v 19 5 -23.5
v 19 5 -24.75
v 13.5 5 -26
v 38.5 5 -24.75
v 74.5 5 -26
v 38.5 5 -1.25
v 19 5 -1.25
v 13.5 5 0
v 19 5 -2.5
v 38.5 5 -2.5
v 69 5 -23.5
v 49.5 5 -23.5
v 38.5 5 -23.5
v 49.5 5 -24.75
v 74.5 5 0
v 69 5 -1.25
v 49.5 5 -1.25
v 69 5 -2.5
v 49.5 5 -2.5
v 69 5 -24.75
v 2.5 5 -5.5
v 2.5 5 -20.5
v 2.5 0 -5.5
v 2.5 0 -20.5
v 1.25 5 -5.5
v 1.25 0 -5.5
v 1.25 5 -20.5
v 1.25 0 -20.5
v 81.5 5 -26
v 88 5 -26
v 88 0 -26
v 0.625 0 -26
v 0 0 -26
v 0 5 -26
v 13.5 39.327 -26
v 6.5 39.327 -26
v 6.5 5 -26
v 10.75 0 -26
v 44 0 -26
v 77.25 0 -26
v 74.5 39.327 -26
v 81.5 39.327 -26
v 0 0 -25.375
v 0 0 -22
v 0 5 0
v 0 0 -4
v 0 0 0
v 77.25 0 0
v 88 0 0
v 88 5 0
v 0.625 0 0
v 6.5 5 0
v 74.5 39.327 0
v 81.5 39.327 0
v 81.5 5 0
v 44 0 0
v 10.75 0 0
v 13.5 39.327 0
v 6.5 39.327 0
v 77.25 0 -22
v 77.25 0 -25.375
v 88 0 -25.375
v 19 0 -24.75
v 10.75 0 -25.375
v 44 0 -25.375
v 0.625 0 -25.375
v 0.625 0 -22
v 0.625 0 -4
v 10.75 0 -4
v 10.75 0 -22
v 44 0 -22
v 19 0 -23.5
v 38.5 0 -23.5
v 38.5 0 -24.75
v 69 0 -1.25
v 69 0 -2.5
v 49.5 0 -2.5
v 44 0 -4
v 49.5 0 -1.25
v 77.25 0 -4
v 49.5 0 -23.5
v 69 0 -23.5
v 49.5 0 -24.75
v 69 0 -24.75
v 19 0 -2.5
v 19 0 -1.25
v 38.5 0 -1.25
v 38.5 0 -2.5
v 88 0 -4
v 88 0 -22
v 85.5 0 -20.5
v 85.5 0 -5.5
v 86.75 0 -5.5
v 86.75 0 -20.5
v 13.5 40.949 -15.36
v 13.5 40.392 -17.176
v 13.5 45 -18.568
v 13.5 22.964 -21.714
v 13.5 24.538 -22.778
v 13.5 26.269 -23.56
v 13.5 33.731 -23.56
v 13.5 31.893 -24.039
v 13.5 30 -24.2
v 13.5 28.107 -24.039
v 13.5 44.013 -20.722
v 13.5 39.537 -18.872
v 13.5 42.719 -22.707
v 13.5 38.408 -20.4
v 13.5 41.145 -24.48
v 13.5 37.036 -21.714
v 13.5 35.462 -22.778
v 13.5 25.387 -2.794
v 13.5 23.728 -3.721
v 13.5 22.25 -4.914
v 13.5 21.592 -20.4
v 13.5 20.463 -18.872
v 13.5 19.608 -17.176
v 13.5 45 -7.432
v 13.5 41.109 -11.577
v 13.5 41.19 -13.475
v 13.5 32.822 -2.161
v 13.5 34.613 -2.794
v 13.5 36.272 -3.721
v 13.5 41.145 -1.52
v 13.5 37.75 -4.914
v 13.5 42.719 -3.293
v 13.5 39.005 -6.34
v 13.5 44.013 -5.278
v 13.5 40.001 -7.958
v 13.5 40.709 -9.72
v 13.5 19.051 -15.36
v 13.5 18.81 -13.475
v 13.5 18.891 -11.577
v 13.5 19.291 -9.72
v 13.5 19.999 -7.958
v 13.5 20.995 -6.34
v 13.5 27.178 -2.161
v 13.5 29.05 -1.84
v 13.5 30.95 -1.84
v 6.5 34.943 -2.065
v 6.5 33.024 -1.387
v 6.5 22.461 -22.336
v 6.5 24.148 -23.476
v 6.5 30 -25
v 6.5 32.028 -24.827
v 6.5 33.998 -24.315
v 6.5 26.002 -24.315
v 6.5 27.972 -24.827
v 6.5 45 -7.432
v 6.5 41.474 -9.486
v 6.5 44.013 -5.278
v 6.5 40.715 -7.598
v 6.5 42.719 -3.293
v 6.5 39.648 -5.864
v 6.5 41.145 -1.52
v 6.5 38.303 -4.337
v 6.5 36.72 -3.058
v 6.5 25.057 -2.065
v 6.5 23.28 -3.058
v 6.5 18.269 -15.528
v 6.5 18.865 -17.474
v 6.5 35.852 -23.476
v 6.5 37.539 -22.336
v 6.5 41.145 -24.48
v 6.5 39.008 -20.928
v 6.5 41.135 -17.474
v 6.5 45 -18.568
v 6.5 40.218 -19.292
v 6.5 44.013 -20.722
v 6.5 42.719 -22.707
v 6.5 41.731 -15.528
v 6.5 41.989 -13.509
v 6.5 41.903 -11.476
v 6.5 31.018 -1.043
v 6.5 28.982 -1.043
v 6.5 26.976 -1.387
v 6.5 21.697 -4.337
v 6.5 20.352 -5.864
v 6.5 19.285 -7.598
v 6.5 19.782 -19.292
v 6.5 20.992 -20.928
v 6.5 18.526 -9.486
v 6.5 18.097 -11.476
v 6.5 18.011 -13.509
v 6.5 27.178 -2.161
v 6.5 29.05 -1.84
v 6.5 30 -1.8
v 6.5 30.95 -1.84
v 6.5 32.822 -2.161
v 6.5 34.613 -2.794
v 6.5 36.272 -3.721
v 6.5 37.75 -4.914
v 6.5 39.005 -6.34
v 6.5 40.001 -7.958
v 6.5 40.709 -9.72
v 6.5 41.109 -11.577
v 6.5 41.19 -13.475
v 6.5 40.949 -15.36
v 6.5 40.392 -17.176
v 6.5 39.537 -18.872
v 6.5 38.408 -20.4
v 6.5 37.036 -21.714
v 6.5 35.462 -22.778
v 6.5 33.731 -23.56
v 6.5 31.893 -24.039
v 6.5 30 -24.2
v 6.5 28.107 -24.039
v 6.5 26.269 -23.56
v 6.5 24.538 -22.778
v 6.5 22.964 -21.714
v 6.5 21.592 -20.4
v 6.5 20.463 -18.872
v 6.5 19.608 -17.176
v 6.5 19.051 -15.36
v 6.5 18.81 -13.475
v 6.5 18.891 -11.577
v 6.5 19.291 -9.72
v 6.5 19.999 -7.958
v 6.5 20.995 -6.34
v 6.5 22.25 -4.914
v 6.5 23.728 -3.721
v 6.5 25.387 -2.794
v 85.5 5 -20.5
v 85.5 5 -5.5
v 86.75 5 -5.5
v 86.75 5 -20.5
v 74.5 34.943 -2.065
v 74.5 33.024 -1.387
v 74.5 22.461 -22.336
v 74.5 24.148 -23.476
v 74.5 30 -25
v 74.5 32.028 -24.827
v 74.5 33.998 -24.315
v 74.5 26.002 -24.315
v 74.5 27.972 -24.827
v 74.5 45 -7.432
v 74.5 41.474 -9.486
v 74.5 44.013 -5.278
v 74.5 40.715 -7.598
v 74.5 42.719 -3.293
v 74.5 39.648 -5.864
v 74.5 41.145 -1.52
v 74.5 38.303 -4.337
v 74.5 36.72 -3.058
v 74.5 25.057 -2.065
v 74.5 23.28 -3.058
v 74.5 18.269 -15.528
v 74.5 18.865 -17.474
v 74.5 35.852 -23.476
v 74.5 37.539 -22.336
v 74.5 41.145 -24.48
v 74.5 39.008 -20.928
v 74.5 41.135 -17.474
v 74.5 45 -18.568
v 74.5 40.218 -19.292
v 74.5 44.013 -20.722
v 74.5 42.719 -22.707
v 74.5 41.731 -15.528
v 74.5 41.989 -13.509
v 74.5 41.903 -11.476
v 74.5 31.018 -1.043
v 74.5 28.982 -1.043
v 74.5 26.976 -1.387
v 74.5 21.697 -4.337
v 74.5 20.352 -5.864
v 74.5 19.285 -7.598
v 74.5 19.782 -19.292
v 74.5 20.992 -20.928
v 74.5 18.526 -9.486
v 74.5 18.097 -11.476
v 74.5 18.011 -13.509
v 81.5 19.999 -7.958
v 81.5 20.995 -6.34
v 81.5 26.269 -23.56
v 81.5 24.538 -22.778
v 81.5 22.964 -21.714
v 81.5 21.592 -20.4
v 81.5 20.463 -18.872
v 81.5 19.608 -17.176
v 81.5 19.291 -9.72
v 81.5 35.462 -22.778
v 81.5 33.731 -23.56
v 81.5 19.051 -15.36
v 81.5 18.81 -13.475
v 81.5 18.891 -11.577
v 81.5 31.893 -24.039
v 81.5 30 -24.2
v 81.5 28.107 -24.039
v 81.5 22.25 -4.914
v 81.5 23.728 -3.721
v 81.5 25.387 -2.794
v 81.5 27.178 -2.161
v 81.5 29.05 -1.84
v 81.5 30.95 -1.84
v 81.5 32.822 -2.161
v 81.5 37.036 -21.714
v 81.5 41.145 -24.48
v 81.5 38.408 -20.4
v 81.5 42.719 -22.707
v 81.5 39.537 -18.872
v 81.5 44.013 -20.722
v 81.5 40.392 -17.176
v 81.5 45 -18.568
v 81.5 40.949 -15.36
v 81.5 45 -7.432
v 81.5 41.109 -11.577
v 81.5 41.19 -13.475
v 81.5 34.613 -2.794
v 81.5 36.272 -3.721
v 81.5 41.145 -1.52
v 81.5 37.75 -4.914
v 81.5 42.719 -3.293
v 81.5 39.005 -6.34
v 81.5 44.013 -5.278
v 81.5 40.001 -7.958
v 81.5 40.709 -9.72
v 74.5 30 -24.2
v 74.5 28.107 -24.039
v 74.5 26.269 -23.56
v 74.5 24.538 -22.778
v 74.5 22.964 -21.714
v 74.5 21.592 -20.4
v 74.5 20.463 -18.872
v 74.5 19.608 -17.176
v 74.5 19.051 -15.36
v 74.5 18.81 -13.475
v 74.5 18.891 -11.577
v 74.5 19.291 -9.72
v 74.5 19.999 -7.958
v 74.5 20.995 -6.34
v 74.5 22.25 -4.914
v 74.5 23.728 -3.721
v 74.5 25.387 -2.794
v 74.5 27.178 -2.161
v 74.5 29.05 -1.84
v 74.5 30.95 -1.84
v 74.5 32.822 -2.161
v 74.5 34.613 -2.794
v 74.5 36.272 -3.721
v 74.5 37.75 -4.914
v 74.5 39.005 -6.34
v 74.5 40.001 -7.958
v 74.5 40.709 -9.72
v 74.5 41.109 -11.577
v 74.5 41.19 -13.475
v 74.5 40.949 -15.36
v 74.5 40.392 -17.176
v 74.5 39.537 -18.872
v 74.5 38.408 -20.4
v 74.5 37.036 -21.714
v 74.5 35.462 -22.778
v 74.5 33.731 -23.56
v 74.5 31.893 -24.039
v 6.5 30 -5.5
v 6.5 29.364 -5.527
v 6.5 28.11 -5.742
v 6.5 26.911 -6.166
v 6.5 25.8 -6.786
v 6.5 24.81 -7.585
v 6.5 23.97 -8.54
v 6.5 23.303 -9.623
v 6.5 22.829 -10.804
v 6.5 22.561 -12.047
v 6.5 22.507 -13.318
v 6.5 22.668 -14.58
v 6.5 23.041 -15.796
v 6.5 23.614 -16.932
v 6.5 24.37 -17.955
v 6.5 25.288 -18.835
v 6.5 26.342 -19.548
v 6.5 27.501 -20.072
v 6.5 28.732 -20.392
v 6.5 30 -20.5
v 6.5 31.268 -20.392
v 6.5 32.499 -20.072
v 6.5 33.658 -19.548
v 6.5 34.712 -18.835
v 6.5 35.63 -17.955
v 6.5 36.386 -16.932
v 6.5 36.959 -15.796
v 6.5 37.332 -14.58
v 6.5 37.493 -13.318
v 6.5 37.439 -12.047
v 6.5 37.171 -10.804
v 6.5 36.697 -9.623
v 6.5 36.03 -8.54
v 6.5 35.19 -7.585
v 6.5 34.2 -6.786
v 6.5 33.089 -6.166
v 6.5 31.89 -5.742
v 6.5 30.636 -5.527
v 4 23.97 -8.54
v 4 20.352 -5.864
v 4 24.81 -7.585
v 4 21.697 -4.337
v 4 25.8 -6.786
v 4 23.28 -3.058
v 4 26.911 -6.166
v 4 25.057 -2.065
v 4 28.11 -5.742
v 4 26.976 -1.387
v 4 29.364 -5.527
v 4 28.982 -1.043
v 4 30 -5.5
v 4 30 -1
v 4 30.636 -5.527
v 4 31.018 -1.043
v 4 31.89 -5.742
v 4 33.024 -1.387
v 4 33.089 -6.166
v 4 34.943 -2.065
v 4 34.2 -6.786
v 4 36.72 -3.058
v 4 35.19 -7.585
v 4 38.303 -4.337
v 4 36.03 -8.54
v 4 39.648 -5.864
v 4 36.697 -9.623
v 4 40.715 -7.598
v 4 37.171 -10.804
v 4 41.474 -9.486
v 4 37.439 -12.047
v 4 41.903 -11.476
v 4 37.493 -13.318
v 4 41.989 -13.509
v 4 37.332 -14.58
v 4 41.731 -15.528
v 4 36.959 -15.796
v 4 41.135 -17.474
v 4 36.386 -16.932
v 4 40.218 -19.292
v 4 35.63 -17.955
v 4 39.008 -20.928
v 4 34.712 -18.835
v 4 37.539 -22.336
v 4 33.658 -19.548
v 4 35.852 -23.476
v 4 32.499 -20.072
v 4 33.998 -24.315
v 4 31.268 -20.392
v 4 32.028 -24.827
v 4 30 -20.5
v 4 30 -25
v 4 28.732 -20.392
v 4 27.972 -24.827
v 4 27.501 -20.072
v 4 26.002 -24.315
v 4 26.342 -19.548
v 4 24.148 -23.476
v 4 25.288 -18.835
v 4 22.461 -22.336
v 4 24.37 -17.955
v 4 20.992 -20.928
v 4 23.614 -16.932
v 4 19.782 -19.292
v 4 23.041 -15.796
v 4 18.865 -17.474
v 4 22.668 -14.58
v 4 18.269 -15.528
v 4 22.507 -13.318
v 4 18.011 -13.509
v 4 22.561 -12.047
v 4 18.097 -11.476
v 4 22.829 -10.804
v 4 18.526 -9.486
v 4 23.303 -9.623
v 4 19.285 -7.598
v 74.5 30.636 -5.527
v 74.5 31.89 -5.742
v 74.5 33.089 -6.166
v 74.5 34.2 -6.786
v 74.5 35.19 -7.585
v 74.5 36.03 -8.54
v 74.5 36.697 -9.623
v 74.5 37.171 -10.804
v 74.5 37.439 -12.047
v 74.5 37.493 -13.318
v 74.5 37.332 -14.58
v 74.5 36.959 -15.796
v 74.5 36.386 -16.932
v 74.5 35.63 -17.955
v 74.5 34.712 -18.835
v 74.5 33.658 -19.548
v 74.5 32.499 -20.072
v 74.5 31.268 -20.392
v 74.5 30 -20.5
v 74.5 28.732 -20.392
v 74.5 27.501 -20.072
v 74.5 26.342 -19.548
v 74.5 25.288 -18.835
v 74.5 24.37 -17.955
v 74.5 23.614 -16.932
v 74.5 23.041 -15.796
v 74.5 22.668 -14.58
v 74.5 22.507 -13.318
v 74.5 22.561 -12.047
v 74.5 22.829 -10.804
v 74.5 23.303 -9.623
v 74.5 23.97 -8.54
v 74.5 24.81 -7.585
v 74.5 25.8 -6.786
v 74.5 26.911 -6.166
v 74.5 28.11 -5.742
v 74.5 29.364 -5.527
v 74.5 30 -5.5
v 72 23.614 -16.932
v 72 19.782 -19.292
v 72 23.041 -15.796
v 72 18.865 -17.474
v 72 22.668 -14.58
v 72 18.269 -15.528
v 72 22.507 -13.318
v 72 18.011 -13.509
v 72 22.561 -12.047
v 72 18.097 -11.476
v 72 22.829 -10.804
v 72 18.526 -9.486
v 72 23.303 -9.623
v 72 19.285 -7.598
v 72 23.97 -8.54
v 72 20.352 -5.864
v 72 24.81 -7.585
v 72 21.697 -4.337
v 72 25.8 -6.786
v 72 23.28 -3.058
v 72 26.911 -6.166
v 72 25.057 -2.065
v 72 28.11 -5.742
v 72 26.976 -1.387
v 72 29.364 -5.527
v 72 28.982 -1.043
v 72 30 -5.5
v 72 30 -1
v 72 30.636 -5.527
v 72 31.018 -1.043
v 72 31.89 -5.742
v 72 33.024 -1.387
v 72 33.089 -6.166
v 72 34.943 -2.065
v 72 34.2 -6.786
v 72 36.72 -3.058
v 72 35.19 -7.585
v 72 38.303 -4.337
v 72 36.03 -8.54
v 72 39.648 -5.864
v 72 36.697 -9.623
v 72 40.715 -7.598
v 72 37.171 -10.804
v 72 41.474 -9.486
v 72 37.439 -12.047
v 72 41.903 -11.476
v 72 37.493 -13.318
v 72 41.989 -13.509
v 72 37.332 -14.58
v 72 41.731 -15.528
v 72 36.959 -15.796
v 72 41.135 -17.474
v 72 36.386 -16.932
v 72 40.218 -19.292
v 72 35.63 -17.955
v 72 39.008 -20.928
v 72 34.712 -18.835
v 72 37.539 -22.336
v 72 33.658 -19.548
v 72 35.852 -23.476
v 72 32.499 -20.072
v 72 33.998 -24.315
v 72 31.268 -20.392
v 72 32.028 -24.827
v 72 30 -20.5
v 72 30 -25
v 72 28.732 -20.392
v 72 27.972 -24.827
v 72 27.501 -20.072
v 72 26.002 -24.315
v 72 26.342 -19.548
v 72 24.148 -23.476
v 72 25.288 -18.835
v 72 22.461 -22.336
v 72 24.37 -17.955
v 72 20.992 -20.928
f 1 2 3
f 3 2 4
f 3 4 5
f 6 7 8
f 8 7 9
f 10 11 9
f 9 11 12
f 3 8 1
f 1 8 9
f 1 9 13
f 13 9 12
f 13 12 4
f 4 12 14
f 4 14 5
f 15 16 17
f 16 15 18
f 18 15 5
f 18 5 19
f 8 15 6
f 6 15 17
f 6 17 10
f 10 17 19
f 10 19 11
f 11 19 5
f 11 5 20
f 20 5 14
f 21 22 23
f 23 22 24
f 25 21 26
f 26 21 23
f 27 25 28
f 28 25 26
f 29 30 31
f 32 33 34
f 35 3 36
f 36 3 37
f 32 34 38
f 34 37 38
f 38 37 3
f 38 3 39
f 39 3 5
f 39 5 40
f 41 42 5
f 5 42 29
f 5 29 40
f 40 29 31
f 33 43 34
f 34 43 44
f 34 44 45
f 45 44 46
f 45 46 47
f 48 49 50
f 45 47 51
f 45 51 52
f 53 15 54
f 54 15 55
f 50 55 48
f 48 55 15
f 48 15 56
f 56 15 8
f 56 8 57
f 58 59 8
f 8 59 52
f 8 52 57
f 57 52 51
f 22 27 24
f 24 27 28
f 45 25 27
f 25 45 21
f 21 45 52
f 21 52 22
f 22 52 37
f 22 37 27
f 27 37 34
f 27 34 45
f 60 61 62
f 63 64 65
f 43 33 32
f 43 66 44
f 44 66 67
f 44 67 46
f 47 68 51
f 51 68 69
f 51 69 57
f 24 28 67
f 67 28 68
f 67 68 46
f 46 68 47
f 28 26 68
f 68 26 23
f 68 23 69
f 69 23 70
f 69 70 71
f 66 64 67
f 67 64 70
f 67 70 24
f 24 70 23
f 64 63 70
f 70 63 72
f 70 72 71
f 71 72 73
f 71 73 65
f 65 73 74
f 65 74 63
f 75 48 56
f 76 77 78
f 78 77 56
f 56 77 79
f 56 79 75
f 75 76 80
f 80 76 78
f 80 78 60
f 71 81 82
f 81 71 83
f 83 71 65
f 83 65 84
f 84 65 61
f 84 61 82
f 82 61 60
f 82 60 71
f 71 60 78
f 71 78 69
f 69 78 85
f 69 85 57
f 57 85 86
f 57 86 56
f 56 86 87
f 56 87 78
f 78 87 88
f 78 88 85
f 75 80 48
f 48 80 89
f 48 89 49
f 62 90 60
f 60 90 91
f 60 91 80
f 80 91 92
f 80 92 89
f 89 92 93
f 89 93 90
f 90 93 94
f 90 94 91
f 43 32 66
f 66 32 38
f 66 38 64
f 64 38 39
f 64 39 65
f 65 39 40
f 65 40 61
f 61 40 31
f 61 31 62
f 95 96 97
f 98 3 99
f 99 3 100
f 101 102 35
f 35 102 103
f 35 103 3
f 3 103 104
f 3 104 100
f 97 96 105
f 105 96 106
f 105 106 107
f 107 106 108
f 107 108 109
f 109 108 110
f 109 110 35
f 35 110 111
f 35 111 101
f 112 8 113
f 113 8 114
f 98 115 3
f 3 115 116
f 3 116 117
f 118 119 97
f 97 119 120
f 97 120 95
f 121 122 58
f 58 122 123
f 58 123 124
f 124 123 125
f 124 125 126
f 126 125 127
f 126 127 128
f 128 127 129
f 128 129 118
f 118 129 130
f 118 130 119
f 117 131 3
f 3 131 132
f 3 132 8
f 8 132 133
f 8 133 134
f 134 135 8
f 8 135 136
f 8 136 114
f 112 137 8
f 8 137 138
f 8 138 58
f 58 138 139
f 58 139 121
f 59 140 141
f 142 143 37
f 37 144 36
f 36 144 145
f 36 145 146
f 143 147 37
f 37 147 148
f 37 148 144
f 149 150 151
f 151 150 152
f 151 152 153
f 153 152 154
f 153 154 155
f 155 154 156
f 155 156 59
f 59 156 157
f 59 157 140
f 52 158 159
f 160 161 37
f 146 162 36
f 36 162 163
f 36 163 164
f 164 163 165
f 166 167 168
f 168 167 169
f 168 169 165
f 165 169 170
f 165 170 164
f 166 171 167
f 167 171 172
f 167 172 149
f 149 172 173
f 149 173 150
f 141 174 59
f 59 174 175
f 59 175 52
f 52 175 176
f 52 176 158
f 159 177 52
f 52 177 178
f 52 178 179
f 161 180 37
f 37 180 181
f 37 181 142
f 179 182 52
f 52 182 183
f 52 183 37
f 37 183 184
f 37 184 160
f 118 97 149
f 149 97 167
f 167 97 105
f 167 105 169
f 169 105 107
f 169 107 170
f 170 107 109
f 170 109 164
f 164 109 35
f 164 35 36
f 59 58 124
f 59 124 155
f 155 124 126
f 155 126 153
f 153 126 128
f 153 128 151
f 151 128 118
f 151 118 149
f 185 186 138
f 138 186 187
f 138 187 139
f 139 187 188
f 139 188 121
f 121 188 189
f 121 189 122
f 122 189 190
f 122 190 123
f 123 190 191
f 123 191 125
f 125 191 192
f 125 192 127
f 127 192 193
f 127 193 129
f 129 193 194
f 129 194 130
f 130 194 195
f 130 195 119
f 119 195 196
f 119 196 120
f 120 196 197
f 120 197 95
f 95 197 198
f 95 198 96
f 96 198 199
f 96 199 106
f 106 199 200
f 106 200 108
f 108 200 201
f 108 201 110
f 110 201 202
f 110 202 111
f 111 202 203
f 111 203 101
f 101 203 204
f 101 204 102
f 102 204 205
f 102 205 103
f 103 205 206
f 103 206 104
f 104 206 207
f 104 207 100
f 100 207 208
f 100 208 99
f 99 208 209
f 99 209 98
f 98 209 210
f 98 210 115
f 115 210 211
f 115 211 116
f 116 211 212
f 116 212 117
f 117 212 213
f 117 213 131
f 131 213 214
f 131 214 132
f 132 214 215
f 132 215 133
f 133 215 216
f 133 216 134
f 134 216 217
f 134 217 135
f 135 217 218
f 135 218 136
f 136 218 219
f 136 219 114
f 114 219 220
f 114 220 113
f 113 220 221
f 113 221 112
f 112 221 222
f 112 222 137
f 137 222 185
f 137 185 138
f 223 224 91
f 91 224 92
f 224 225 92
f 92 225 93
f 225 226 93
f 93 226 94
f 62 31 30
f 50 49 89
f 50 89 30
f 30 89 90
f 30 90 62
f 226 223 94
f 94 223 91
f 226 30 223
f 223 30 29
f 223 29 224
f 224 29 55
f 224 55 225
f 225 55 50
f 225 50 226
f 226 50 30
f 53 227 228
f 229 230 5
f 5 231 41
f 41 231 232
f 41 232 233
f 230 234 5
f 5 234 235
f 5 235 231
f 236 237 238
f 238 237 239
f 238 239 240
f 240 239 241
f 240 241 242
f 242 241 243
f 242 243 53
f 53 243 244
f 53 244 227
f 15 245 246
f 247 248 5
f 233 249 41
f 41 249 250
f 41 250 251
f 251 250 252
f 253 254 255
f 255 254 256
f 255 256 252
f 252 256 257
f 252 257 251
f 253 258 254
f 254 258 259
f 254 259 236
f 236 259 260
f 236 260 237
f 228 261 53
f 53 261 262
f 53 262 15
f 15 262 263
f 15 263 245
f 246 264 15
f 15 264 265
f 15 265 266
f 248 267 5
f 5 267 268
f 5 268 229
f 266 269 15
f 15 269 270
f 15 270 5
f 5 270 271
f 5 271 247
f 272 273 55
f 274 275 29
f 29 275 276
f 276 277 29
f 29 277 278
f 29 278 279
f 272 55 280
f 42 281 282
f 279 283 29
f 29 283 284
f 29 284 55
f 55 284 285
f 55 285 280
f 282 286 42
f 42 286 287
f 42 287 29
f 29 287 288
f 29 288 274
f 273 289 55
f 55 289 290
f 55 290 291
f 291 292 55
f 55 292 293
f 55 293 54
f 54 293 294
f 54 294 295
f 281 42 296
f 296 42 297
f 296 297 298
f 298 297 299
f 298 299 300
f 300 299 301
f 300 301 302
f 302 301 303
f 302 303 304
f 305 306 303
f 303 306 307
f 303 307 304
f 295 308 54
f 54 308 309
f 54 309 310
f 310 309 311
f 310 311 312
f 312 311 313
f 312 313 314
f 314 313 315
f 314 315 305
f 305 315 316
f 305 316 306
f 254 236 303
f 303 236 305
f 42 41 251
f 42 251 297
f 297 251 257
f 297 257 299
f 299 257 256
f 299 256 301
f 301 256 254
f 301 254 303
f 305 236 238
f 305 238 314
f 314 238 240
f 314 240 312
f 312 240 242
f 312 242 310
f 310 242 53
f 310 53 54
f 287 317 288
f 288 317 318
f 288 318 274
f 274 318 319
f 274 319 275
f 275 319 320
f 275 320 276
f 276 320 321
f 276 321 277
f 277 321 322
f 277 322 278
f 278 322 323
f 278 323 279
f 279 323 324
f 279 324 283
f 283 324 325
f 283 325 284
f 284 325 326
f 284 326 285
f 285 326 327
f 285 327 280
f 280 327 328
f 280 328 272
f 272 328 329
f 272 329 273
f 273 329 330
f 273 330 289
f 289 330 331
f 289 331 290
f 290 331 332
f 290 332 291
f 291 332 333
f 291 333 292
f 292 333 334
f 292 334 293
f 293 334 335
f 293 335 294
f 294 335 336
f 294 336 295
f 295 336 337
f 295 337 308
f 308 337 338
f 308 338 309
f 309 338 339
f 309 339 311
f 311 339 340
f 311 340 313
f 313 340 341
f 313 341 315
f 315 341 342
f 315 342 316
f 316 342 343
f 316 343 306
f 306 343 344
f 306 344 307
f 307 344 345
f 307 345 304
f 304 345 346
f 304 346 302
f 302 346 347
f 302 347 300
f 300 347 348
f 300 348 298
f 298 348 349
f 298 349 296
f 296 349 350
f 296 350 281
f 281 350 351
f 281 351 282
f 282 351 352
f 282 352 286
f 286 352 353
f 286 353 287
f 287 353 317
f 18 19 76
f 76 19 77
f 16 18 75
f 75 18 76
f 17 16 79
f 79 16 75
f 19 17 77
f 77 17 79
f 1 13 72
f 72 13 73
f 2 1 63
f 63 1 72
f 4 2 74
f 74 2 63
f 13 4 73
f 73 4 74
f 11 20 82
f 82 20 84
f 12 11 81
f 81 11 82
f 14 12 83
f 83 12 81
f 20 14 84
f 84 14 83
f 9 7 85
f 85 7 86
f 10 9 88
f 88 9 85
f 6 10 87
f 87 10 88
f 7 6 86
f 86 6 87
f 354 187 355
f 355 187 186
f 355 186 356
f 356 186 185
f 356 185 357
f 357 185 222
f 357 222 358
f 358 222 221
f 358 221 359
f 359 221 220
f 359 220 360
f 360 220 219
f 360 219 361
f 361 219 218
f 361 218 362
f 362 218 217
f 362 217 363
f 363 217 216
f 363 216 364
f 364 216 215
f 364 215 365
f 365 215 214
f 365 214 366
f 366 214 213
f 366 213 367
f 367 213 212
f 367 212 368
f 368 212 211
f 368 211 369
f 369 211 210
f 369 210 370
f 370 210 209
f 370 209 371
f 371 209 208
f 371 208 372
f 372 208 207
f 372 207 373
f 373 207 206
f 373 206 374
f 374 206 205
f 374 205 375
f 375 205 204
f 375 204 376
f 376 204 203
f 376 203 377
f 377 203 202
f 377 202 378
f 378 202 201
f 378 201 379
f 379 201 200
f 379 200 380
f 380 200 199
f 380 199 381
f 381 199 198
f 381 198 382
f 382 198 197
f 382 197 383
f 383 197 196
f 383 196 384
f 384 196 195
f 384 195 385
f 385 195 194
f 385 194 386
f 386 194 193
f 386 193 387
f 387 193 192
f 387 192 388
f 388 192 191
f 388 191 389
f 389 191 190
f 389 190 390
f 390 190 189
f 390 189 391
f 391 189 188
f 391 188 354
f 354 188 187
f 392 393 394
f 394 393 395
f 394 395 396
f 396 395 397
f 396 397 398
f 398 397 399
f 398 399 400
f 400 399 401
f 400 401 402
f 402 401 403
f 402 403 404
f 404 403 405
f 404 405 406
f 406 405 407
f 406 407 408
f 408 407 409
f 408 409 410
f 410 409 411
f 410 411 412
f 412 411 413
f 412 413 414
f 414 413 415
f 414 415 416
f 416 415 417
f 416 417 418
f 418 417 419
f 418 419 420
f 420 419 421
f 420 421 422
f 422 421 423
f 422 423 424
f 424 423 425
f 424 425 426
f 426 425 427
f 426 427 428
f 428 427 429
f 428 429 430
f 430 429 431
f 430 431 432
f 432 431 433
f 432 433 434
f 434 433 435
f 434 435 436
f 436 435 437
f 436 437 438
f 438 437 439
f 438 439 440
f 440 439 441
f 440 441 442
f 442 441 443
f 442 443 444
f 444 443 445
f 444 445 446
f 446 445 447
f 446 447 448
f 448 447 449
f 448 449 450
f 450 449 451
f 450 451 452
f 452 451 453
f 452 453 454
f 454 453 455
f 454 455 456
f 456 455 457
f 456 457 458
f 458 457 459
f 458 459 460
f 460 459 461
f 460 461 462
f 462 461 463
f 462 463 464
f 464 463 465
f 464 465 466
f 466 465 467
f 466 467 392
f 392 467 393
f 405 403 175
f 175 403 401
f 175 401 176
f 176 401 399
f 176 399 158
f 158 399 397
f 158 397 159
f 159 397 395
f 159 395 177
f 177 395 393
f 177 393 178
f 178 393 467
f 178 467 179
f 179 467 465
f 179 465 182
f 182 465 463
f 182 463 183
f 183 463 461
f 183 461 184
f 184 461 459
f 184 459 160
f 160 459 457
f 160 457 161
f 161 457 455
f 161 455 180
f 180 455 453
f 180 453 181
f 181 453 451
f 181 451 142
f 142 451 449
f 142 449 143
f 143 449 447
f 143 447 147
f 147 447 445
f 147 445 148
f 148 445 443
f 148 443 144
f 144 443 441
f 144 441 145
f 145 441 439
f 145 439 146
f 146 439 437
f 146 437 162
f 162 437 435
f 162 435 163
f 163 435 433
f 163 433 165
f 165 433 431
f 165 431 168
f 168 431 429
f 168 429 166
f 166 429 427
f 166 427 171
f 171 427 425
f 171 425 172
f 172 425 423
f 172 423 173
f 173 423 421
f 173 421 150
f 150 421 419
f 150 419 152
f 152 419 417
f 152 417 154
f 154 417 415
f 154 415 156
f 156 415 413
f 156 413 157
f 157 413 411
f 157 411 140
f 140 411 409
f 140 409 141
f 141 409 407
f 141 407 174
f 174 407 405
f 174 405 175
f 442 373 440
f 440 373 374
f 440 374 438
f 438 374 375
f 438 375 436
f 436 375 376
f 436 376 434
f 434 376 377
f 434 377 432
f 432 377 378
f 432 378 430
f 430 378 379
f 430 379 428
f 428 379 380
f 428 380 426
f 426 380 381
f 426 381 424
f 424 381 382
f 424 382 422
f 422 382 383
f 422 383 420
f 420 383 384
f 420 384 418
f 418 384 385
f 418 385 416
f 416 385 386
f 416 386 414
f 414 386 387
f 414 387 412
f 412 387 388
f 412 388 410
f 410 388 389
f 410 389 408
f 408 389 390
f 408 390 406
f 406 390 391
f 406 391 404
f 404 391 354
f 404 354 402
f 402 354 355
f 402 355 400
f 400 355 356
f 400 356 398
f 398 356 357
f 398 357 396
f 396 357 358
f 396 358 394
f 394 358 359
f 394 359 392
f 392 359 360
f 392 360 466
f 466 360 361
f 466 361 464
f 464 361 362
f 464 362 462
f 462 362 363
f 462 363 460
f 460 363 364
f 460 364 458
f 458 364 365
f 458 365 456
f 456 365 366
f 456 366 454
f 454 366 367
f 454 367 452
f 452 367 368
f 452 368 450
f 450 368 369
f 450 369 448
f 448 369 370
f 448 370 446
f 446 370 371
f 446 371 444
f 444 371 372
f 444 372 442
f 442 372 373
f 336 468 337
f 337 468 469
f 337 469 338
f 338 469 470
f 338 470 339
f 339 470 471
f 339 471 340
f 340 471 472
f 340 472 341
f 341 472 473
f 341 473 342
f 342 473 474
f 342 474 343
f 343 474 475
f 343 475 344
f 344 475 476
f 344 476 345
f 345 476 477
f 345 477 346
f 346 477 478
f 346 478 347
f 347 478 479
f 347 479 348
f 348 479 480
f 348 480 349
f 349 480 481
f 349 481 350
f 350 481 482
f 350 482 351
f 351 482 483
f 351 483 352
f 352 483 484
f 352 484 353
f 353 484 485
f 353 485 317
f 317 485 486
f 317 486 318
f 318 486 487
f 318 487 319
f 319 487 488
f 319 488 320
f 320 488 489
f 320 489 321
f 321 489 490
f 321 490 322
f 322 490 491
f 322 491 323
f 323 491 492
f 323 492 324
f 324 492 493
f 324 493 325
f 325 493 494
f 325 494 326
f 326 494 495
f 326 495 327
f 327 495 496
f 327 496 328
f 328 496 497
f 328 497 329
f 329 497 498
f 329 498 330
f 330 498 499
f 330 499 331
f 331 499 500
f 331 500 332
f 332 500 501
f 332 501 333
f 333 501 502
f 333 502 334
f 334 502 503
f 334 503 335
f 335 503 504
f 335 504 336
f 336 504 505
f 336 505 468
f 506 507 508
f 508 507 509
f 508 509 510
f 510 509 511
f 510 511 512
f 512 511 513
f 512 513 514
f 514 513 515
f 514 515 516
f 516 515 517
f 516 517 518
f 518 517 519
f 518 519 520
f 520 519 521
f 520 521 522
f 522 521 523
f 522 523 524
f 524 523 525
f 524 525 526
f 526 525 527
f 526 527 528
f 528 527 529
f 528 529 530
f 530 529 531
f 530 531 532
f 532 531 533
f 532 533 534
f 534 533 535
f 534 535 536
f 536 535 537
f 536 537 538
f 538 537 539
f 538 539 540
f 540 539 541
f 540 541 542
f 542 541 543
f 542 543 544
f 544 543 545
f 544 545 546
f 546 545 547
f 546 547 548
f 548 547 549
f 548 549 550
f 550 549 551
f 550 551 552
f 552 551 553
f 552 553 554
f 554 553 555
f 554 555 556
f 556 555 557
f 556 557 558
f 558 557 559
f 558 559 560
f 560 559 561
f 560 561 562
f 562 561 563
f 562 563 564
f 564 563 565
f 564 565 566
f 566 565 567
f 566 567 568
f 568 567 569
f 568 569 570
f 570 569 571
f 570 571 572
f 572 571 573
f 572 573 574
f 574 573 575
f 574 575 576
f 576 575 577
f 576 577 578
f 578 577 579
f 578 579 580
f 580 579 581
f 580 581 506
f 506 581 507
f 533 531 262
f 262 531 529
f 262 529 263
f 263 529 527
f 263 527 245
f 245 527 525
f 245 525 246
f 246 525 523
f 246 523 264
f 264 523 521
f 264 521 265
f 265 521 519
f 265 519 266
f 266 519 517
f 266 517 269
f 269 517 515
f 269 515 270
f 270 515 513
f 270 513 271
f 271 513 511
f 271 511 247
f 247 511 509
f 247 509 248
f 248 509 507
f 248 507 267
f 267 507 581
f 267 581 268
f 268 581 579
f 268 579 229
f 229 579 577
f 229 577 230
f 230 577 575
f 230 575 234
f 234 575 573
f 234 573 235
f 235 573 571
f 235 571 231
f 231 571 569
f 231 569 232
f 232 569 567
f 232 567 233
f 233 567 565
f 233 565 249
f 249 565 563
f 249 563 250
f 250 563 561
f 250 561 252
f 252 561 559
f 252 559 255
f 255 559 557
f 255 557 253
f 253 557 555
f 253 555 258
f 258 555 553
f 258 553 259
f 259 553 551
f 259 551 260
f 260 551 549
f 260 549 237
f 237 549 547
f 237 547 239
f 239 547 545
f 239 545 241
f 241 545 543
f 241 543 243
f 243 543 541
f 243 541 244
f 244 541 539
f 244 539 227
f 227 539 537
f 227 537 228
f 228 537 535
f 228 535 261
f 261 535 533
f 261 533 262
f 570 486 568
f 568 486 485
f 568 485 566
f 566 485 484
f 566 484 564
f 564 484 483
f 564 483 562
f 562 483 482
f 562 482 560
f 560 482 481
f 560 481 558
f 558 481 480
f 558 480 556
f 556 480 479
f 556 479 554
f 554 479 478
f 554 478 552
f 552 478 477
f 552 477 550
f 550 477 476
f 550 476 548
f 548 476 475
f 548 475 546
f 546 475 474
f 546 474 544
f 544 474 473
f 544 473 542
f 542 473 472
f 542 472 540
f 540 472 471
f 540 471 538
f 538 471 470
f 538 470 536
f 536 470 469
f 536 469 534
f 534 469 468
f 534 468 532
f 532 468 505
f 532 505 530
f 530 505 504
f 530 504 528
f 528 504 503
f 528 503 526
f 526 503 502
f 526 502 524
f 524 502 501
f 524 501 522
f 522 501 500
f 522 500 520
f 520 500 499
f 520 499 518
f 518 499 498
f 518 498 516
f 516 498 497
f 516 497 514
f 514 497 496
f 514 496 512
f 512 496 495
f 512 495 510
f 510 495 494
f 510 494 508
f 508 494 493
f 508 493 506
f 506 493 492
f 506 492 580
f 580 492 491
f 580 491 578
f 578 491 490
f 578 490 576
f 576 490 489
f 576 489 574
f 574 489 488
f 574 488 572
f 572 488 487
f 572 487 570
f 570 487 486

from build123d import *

# Parameters (mm, degrees)
SKETCH1_W            = 20
SKETCH1_H            = 26
SKETCH1_W_2          = 1.25
SKETCH1_H_2          = 15
BOSS_EXTRUDE5_DEPTH  = 5
SKETCH3_W            = 7
SKETCH3_H            = 26
BOSS_EXTRUDE6_DEPTH  = 40
CUT_EXTRUDE1_REACH   = 55.696
SKETCH5_R            = 11.2
SKETCH6_W            = 26
SKETCH6_H            = 5
BOSS_EXTRUDE8_DEPTH  = 24
CUT_EXTRUDE2_REACH   = 102.1
SKETCH7_W            = 19.5
SKETCH7_H            = 1.25
SKETCH8_R            = 12
SKETCH8_R_2          = 7.5
BOSS_EXTRUDE9_DEPTH  = 2.5
SKETCH9_R            = 12
SKETCH9_R_2          = 7.5
BOSS_EXTRUDE10_DEPTH = 2.5


with BuildPart() as part:
    # Sketch1 → Boss-Extrude5 (new body)
    with BuildSketch(Plane(origin=(0, 0, 0), x_dir=(1, 0, 0), z_dir=(0, 1, 0))):
        with Locations((10, 13)):
            Rectangle(SKETCH1_W, SKETCH1_H)
        with Locations((1.875, 13)):
            Rectangle(SKETCH1_W_2, SKETCH1_H_2, mode=Mode.SUBTRACT)
    boss_extrude5 = extrude(amount=BOSS_EXTRUDE5_DEPTH)

    # Sketch3 → Boss-Extrude6 (add)
    with BuildSketch(Plane(origin=(0, 5, 0), x_dir=(1, 0, 0), z_dir=(0, 1, 0))):
        with Locations((10, 13)):
            Rectangle(SKETCH3_W, SKETCH3_H)
    boss_extrude6 = extrude(amount=BOSS_EXTRUDE6_DEPTH)

    # Sketch5 → Cut-Extrude1 (cut, up to next)
    with BuildSketch(Plane(origin=(13.5, 0, 0), x_dir=(0, 0, -1), z_dir=(1, 0, 0)), mode=Mode.PRIVATE) as cut_extrude1_sk1:
        with Locations((13, 30)):
            Circle(SKETCH5_R)
    cut_extrude1_tool1 = extrude(cut_extrude1_sk1.sketch, amount=-CUT_EXTRUDE1_REACH, mode=Mode.PRIVATE) & part.part
    # Sketch5 → Cut-Extrude1 (cut, up to next)
    with BuildSketch(Plane(origin=(13.5, 0, 0), x_dir=(0, 0, -1), z_dir=(1, 0, 0)), mode=Mode.PRIVATE) as cut_extrude1_sk2:
        with BuildLine():
            Line((7.432235637, 45), (0, 45))
            Line((0, 45), (0, 39.327379053))
            ThreePointArc((0, 39.327379053), (3.292522189, 42.718682107), (7.432235637, 45))
        make_face()
    cut_extrude1_tool2 = extrude(cut_extrude1_sk2.sketch, amount=-CUT_EXTRUDE1_REACH, mode=Mode.PRIVATE) & part.part
    # Sketch5 → Cut-Extrude1 (cut, up to next)
    with BuildSketch(Plane(origin=(13.5, 0, 0), x_dir=(0, 0, -1), z_dir=(1, 0, 0)), mode=Mode.PRIVATE) as cut_extrude1_sk3:
        with BuildLine():
            Line((26, 39.327379053), (26, 45))
            Line((26, 45), (18.567764363, 45))
            ThreePointArc((18.567764363, 45), (22.707477811, 42.718682107), (26, 39.327379053))
        make_face()
    cut_extrude1_tool3 = extrude(cut_extrude1_sk3.sketch, amount=-CUT_EXTRUDE1_REACH, mode=Mode.PRIVATE) & part.part
    cut_extrude1_1 = cut_extrude1_tool1.solids().sort_by_distance((13.5, 30, -13))[0]
    add(cut_extrude1_1, mode=Mode.SUBTRACT)
    cut_extrude1_2 = cut_extrude1_tool2.solids().sort_by_distance((13.5, 43.298273, -2.197768))[0]
    add(cut_extrude1_2, mode=Mode.SUBTRACT)
    cut_extrude1_3 = cut_extrude1_tool3.solids().sort_by_distance((13.5, 43.298273, -23.802232))[0]
    add(cut_extrude1_3, mode=Mode.SUBTRACT)
    cut_extrude1 = cut_extrude1_1 + cut_extrude1_2 + cut_extrude1_3  # Cut-Extrude1 as one shape, for the pattern or mirror that repeats it

    # Sketch6 → Boss-Extrude8 (add)
    with BuildSketch(Plane(origin=(20, 0, 0), x_dir=(0, 0, -1), z_dir=(1, 0, 0))):
        with Locations((13, 2.5)):
            Rectangle(SKETCH6_W, SKETCH6_H)
    boss_extrude8 = extrude(amount=BOSS_EXTRUDE8_DEPTH)

    # Mirror5: Boss-Extrude5, Boss-Extrude6, Cut-Extrude1, Boss-Extrude8 across plane
    add(boss_extrude5.mirror(Plane.ZY.offset(-44)))
    add(boss_extrude6.mirror(Plane.ZY.offset(-44)))
    add(cut_extrude1.mirror(Plane.ZY.offset(-44)), mode=Mode.SUBTRACT)
    add(boss_extrude8.mirror(Plane.ZY.offset(-44)))

    # Sketch7 → Cut-Extrude2 (cut, up to next)
    with BuildSketch(Plane(origin=(0, 5, 0), x_dir=(1, 0, 0), z_dir=(0, 1, 0)), mode=Mode.PRIVATE) as cut_extrude2_sk1:
        with Locations((28.75, 1.875)):
            Rectangle(SKETCH7_W, SKETCH7_H)
    cut_extrude2_tool1 = extrude(cut_extrude2_sk1.sketch, amount=-CUT_EXTRUDE2_REACH, mode=Mode.PRIVATE) & part.part
    # Sketch7 → Cut-Extrude2 (cut, up to next)
    with BuildSketch(Plane(origin=(0, 5, 0), x_dir=(1, 0, 0), z_dir=(0, 1, 0)), mode=Mode.PRIVATE) as cut_extrude2_sk2:
        with Locations((59.25, 1.875)):
            Rectangle(SKETCH7_W, SKETCH7_H)
    cut_extrude2_tool2 = extrude(cut_extrude2_sk2.sketch, amount=-CUT_EXTRUDE2_REACH, mode=Mode.PRIVATE) & part.part
    # Sketch7 → Cut-Extrude2 (cut, up to next)
    with BuildSketch(Plane(origin=(0, 5, 0), x_dir=(1, 0, 0), z_dir=(0, 1, 0)), mode=Mode.PRIVATE) as cut_extrude2_sk3:
        with Locations((59.25, 24.125)):
            Rectangle(SKETCH7_W, SKETCH7_H)
    cut_extrude2_tool3 = extrude(cut_extrude2_sk3.sketch, amount=-CUT_EXTRUDE2_REACH, mode=Mode.PRIVATE) & part.part
    # Sketch7 → Cut-Extrude2 (cut, up to next)
    with BuildSketch(Plane(origin=(0, 5, 0), x_dir=(1, 0, 0), z_dir=(0, 1, 0)), mode=Mode.PRIVATE) as cut_extrude2_sk4:
        with Locations((28.75, 24.125)):
            Rectangle(SKETCH7_W, SKETCH7_H)
    cut_extrude2_tool4 = extrude(cut_extrude2_sk4.sketch, amount=-CUT_EXTRUDE2_REACH, mode=Mode.PRIVATE) & part.part
    add(cut_extrude2_tool1.solids().sort_by_distance((28.75, 5, -1.875))[0], mode=Mode.SUBTRACT)
    add(cut_extrude2_tool2.solids().sort_by_distance((59.25, 5, -1.875))[0], mode=Mode.SUBTRACT)
    add(cut_extrude2_tool3.solids().sort_by_distance((59.25, 5, -24.125))[0], mode=Mode.SUBTRACT)
    add(cut_extrude2_tool4.solids().sort_by_distance((28.75, 5, -24.125))[0], mode=Mode.SUBTRACT)

    # Sketch8 → Boss-Extrude9 (add)
    with BuildSketch(Plane.ZY.offset(-6.5)):
        with Locations(Location((-13, 30, 0), (0, 0, 180))):
            Circle(SKETCH8_R)
        with Locations((-13, 30)):
            Circle(SKETCH8_R_2, mode=Mode.SUBTRACT)
    extrude(amount=BOSS_EXTRUDE9_DEPTH)

    # Sketch9 → Boss-Extrude10 (add)
    with BuildSketch(Plane.ZY.offset(-74.5)):
        with Locations(Location((-13, 30, 0), (0, 0, 180))):
            Circle(SKETCH9_R)
        with Locations((-13, 30)):
            Circle(SKETCH9_R_2, mode=Mode.SUBTRACT)
    extrude(amount=BOSS_EXTRUDE10_DEPTH)


solid = part.part
